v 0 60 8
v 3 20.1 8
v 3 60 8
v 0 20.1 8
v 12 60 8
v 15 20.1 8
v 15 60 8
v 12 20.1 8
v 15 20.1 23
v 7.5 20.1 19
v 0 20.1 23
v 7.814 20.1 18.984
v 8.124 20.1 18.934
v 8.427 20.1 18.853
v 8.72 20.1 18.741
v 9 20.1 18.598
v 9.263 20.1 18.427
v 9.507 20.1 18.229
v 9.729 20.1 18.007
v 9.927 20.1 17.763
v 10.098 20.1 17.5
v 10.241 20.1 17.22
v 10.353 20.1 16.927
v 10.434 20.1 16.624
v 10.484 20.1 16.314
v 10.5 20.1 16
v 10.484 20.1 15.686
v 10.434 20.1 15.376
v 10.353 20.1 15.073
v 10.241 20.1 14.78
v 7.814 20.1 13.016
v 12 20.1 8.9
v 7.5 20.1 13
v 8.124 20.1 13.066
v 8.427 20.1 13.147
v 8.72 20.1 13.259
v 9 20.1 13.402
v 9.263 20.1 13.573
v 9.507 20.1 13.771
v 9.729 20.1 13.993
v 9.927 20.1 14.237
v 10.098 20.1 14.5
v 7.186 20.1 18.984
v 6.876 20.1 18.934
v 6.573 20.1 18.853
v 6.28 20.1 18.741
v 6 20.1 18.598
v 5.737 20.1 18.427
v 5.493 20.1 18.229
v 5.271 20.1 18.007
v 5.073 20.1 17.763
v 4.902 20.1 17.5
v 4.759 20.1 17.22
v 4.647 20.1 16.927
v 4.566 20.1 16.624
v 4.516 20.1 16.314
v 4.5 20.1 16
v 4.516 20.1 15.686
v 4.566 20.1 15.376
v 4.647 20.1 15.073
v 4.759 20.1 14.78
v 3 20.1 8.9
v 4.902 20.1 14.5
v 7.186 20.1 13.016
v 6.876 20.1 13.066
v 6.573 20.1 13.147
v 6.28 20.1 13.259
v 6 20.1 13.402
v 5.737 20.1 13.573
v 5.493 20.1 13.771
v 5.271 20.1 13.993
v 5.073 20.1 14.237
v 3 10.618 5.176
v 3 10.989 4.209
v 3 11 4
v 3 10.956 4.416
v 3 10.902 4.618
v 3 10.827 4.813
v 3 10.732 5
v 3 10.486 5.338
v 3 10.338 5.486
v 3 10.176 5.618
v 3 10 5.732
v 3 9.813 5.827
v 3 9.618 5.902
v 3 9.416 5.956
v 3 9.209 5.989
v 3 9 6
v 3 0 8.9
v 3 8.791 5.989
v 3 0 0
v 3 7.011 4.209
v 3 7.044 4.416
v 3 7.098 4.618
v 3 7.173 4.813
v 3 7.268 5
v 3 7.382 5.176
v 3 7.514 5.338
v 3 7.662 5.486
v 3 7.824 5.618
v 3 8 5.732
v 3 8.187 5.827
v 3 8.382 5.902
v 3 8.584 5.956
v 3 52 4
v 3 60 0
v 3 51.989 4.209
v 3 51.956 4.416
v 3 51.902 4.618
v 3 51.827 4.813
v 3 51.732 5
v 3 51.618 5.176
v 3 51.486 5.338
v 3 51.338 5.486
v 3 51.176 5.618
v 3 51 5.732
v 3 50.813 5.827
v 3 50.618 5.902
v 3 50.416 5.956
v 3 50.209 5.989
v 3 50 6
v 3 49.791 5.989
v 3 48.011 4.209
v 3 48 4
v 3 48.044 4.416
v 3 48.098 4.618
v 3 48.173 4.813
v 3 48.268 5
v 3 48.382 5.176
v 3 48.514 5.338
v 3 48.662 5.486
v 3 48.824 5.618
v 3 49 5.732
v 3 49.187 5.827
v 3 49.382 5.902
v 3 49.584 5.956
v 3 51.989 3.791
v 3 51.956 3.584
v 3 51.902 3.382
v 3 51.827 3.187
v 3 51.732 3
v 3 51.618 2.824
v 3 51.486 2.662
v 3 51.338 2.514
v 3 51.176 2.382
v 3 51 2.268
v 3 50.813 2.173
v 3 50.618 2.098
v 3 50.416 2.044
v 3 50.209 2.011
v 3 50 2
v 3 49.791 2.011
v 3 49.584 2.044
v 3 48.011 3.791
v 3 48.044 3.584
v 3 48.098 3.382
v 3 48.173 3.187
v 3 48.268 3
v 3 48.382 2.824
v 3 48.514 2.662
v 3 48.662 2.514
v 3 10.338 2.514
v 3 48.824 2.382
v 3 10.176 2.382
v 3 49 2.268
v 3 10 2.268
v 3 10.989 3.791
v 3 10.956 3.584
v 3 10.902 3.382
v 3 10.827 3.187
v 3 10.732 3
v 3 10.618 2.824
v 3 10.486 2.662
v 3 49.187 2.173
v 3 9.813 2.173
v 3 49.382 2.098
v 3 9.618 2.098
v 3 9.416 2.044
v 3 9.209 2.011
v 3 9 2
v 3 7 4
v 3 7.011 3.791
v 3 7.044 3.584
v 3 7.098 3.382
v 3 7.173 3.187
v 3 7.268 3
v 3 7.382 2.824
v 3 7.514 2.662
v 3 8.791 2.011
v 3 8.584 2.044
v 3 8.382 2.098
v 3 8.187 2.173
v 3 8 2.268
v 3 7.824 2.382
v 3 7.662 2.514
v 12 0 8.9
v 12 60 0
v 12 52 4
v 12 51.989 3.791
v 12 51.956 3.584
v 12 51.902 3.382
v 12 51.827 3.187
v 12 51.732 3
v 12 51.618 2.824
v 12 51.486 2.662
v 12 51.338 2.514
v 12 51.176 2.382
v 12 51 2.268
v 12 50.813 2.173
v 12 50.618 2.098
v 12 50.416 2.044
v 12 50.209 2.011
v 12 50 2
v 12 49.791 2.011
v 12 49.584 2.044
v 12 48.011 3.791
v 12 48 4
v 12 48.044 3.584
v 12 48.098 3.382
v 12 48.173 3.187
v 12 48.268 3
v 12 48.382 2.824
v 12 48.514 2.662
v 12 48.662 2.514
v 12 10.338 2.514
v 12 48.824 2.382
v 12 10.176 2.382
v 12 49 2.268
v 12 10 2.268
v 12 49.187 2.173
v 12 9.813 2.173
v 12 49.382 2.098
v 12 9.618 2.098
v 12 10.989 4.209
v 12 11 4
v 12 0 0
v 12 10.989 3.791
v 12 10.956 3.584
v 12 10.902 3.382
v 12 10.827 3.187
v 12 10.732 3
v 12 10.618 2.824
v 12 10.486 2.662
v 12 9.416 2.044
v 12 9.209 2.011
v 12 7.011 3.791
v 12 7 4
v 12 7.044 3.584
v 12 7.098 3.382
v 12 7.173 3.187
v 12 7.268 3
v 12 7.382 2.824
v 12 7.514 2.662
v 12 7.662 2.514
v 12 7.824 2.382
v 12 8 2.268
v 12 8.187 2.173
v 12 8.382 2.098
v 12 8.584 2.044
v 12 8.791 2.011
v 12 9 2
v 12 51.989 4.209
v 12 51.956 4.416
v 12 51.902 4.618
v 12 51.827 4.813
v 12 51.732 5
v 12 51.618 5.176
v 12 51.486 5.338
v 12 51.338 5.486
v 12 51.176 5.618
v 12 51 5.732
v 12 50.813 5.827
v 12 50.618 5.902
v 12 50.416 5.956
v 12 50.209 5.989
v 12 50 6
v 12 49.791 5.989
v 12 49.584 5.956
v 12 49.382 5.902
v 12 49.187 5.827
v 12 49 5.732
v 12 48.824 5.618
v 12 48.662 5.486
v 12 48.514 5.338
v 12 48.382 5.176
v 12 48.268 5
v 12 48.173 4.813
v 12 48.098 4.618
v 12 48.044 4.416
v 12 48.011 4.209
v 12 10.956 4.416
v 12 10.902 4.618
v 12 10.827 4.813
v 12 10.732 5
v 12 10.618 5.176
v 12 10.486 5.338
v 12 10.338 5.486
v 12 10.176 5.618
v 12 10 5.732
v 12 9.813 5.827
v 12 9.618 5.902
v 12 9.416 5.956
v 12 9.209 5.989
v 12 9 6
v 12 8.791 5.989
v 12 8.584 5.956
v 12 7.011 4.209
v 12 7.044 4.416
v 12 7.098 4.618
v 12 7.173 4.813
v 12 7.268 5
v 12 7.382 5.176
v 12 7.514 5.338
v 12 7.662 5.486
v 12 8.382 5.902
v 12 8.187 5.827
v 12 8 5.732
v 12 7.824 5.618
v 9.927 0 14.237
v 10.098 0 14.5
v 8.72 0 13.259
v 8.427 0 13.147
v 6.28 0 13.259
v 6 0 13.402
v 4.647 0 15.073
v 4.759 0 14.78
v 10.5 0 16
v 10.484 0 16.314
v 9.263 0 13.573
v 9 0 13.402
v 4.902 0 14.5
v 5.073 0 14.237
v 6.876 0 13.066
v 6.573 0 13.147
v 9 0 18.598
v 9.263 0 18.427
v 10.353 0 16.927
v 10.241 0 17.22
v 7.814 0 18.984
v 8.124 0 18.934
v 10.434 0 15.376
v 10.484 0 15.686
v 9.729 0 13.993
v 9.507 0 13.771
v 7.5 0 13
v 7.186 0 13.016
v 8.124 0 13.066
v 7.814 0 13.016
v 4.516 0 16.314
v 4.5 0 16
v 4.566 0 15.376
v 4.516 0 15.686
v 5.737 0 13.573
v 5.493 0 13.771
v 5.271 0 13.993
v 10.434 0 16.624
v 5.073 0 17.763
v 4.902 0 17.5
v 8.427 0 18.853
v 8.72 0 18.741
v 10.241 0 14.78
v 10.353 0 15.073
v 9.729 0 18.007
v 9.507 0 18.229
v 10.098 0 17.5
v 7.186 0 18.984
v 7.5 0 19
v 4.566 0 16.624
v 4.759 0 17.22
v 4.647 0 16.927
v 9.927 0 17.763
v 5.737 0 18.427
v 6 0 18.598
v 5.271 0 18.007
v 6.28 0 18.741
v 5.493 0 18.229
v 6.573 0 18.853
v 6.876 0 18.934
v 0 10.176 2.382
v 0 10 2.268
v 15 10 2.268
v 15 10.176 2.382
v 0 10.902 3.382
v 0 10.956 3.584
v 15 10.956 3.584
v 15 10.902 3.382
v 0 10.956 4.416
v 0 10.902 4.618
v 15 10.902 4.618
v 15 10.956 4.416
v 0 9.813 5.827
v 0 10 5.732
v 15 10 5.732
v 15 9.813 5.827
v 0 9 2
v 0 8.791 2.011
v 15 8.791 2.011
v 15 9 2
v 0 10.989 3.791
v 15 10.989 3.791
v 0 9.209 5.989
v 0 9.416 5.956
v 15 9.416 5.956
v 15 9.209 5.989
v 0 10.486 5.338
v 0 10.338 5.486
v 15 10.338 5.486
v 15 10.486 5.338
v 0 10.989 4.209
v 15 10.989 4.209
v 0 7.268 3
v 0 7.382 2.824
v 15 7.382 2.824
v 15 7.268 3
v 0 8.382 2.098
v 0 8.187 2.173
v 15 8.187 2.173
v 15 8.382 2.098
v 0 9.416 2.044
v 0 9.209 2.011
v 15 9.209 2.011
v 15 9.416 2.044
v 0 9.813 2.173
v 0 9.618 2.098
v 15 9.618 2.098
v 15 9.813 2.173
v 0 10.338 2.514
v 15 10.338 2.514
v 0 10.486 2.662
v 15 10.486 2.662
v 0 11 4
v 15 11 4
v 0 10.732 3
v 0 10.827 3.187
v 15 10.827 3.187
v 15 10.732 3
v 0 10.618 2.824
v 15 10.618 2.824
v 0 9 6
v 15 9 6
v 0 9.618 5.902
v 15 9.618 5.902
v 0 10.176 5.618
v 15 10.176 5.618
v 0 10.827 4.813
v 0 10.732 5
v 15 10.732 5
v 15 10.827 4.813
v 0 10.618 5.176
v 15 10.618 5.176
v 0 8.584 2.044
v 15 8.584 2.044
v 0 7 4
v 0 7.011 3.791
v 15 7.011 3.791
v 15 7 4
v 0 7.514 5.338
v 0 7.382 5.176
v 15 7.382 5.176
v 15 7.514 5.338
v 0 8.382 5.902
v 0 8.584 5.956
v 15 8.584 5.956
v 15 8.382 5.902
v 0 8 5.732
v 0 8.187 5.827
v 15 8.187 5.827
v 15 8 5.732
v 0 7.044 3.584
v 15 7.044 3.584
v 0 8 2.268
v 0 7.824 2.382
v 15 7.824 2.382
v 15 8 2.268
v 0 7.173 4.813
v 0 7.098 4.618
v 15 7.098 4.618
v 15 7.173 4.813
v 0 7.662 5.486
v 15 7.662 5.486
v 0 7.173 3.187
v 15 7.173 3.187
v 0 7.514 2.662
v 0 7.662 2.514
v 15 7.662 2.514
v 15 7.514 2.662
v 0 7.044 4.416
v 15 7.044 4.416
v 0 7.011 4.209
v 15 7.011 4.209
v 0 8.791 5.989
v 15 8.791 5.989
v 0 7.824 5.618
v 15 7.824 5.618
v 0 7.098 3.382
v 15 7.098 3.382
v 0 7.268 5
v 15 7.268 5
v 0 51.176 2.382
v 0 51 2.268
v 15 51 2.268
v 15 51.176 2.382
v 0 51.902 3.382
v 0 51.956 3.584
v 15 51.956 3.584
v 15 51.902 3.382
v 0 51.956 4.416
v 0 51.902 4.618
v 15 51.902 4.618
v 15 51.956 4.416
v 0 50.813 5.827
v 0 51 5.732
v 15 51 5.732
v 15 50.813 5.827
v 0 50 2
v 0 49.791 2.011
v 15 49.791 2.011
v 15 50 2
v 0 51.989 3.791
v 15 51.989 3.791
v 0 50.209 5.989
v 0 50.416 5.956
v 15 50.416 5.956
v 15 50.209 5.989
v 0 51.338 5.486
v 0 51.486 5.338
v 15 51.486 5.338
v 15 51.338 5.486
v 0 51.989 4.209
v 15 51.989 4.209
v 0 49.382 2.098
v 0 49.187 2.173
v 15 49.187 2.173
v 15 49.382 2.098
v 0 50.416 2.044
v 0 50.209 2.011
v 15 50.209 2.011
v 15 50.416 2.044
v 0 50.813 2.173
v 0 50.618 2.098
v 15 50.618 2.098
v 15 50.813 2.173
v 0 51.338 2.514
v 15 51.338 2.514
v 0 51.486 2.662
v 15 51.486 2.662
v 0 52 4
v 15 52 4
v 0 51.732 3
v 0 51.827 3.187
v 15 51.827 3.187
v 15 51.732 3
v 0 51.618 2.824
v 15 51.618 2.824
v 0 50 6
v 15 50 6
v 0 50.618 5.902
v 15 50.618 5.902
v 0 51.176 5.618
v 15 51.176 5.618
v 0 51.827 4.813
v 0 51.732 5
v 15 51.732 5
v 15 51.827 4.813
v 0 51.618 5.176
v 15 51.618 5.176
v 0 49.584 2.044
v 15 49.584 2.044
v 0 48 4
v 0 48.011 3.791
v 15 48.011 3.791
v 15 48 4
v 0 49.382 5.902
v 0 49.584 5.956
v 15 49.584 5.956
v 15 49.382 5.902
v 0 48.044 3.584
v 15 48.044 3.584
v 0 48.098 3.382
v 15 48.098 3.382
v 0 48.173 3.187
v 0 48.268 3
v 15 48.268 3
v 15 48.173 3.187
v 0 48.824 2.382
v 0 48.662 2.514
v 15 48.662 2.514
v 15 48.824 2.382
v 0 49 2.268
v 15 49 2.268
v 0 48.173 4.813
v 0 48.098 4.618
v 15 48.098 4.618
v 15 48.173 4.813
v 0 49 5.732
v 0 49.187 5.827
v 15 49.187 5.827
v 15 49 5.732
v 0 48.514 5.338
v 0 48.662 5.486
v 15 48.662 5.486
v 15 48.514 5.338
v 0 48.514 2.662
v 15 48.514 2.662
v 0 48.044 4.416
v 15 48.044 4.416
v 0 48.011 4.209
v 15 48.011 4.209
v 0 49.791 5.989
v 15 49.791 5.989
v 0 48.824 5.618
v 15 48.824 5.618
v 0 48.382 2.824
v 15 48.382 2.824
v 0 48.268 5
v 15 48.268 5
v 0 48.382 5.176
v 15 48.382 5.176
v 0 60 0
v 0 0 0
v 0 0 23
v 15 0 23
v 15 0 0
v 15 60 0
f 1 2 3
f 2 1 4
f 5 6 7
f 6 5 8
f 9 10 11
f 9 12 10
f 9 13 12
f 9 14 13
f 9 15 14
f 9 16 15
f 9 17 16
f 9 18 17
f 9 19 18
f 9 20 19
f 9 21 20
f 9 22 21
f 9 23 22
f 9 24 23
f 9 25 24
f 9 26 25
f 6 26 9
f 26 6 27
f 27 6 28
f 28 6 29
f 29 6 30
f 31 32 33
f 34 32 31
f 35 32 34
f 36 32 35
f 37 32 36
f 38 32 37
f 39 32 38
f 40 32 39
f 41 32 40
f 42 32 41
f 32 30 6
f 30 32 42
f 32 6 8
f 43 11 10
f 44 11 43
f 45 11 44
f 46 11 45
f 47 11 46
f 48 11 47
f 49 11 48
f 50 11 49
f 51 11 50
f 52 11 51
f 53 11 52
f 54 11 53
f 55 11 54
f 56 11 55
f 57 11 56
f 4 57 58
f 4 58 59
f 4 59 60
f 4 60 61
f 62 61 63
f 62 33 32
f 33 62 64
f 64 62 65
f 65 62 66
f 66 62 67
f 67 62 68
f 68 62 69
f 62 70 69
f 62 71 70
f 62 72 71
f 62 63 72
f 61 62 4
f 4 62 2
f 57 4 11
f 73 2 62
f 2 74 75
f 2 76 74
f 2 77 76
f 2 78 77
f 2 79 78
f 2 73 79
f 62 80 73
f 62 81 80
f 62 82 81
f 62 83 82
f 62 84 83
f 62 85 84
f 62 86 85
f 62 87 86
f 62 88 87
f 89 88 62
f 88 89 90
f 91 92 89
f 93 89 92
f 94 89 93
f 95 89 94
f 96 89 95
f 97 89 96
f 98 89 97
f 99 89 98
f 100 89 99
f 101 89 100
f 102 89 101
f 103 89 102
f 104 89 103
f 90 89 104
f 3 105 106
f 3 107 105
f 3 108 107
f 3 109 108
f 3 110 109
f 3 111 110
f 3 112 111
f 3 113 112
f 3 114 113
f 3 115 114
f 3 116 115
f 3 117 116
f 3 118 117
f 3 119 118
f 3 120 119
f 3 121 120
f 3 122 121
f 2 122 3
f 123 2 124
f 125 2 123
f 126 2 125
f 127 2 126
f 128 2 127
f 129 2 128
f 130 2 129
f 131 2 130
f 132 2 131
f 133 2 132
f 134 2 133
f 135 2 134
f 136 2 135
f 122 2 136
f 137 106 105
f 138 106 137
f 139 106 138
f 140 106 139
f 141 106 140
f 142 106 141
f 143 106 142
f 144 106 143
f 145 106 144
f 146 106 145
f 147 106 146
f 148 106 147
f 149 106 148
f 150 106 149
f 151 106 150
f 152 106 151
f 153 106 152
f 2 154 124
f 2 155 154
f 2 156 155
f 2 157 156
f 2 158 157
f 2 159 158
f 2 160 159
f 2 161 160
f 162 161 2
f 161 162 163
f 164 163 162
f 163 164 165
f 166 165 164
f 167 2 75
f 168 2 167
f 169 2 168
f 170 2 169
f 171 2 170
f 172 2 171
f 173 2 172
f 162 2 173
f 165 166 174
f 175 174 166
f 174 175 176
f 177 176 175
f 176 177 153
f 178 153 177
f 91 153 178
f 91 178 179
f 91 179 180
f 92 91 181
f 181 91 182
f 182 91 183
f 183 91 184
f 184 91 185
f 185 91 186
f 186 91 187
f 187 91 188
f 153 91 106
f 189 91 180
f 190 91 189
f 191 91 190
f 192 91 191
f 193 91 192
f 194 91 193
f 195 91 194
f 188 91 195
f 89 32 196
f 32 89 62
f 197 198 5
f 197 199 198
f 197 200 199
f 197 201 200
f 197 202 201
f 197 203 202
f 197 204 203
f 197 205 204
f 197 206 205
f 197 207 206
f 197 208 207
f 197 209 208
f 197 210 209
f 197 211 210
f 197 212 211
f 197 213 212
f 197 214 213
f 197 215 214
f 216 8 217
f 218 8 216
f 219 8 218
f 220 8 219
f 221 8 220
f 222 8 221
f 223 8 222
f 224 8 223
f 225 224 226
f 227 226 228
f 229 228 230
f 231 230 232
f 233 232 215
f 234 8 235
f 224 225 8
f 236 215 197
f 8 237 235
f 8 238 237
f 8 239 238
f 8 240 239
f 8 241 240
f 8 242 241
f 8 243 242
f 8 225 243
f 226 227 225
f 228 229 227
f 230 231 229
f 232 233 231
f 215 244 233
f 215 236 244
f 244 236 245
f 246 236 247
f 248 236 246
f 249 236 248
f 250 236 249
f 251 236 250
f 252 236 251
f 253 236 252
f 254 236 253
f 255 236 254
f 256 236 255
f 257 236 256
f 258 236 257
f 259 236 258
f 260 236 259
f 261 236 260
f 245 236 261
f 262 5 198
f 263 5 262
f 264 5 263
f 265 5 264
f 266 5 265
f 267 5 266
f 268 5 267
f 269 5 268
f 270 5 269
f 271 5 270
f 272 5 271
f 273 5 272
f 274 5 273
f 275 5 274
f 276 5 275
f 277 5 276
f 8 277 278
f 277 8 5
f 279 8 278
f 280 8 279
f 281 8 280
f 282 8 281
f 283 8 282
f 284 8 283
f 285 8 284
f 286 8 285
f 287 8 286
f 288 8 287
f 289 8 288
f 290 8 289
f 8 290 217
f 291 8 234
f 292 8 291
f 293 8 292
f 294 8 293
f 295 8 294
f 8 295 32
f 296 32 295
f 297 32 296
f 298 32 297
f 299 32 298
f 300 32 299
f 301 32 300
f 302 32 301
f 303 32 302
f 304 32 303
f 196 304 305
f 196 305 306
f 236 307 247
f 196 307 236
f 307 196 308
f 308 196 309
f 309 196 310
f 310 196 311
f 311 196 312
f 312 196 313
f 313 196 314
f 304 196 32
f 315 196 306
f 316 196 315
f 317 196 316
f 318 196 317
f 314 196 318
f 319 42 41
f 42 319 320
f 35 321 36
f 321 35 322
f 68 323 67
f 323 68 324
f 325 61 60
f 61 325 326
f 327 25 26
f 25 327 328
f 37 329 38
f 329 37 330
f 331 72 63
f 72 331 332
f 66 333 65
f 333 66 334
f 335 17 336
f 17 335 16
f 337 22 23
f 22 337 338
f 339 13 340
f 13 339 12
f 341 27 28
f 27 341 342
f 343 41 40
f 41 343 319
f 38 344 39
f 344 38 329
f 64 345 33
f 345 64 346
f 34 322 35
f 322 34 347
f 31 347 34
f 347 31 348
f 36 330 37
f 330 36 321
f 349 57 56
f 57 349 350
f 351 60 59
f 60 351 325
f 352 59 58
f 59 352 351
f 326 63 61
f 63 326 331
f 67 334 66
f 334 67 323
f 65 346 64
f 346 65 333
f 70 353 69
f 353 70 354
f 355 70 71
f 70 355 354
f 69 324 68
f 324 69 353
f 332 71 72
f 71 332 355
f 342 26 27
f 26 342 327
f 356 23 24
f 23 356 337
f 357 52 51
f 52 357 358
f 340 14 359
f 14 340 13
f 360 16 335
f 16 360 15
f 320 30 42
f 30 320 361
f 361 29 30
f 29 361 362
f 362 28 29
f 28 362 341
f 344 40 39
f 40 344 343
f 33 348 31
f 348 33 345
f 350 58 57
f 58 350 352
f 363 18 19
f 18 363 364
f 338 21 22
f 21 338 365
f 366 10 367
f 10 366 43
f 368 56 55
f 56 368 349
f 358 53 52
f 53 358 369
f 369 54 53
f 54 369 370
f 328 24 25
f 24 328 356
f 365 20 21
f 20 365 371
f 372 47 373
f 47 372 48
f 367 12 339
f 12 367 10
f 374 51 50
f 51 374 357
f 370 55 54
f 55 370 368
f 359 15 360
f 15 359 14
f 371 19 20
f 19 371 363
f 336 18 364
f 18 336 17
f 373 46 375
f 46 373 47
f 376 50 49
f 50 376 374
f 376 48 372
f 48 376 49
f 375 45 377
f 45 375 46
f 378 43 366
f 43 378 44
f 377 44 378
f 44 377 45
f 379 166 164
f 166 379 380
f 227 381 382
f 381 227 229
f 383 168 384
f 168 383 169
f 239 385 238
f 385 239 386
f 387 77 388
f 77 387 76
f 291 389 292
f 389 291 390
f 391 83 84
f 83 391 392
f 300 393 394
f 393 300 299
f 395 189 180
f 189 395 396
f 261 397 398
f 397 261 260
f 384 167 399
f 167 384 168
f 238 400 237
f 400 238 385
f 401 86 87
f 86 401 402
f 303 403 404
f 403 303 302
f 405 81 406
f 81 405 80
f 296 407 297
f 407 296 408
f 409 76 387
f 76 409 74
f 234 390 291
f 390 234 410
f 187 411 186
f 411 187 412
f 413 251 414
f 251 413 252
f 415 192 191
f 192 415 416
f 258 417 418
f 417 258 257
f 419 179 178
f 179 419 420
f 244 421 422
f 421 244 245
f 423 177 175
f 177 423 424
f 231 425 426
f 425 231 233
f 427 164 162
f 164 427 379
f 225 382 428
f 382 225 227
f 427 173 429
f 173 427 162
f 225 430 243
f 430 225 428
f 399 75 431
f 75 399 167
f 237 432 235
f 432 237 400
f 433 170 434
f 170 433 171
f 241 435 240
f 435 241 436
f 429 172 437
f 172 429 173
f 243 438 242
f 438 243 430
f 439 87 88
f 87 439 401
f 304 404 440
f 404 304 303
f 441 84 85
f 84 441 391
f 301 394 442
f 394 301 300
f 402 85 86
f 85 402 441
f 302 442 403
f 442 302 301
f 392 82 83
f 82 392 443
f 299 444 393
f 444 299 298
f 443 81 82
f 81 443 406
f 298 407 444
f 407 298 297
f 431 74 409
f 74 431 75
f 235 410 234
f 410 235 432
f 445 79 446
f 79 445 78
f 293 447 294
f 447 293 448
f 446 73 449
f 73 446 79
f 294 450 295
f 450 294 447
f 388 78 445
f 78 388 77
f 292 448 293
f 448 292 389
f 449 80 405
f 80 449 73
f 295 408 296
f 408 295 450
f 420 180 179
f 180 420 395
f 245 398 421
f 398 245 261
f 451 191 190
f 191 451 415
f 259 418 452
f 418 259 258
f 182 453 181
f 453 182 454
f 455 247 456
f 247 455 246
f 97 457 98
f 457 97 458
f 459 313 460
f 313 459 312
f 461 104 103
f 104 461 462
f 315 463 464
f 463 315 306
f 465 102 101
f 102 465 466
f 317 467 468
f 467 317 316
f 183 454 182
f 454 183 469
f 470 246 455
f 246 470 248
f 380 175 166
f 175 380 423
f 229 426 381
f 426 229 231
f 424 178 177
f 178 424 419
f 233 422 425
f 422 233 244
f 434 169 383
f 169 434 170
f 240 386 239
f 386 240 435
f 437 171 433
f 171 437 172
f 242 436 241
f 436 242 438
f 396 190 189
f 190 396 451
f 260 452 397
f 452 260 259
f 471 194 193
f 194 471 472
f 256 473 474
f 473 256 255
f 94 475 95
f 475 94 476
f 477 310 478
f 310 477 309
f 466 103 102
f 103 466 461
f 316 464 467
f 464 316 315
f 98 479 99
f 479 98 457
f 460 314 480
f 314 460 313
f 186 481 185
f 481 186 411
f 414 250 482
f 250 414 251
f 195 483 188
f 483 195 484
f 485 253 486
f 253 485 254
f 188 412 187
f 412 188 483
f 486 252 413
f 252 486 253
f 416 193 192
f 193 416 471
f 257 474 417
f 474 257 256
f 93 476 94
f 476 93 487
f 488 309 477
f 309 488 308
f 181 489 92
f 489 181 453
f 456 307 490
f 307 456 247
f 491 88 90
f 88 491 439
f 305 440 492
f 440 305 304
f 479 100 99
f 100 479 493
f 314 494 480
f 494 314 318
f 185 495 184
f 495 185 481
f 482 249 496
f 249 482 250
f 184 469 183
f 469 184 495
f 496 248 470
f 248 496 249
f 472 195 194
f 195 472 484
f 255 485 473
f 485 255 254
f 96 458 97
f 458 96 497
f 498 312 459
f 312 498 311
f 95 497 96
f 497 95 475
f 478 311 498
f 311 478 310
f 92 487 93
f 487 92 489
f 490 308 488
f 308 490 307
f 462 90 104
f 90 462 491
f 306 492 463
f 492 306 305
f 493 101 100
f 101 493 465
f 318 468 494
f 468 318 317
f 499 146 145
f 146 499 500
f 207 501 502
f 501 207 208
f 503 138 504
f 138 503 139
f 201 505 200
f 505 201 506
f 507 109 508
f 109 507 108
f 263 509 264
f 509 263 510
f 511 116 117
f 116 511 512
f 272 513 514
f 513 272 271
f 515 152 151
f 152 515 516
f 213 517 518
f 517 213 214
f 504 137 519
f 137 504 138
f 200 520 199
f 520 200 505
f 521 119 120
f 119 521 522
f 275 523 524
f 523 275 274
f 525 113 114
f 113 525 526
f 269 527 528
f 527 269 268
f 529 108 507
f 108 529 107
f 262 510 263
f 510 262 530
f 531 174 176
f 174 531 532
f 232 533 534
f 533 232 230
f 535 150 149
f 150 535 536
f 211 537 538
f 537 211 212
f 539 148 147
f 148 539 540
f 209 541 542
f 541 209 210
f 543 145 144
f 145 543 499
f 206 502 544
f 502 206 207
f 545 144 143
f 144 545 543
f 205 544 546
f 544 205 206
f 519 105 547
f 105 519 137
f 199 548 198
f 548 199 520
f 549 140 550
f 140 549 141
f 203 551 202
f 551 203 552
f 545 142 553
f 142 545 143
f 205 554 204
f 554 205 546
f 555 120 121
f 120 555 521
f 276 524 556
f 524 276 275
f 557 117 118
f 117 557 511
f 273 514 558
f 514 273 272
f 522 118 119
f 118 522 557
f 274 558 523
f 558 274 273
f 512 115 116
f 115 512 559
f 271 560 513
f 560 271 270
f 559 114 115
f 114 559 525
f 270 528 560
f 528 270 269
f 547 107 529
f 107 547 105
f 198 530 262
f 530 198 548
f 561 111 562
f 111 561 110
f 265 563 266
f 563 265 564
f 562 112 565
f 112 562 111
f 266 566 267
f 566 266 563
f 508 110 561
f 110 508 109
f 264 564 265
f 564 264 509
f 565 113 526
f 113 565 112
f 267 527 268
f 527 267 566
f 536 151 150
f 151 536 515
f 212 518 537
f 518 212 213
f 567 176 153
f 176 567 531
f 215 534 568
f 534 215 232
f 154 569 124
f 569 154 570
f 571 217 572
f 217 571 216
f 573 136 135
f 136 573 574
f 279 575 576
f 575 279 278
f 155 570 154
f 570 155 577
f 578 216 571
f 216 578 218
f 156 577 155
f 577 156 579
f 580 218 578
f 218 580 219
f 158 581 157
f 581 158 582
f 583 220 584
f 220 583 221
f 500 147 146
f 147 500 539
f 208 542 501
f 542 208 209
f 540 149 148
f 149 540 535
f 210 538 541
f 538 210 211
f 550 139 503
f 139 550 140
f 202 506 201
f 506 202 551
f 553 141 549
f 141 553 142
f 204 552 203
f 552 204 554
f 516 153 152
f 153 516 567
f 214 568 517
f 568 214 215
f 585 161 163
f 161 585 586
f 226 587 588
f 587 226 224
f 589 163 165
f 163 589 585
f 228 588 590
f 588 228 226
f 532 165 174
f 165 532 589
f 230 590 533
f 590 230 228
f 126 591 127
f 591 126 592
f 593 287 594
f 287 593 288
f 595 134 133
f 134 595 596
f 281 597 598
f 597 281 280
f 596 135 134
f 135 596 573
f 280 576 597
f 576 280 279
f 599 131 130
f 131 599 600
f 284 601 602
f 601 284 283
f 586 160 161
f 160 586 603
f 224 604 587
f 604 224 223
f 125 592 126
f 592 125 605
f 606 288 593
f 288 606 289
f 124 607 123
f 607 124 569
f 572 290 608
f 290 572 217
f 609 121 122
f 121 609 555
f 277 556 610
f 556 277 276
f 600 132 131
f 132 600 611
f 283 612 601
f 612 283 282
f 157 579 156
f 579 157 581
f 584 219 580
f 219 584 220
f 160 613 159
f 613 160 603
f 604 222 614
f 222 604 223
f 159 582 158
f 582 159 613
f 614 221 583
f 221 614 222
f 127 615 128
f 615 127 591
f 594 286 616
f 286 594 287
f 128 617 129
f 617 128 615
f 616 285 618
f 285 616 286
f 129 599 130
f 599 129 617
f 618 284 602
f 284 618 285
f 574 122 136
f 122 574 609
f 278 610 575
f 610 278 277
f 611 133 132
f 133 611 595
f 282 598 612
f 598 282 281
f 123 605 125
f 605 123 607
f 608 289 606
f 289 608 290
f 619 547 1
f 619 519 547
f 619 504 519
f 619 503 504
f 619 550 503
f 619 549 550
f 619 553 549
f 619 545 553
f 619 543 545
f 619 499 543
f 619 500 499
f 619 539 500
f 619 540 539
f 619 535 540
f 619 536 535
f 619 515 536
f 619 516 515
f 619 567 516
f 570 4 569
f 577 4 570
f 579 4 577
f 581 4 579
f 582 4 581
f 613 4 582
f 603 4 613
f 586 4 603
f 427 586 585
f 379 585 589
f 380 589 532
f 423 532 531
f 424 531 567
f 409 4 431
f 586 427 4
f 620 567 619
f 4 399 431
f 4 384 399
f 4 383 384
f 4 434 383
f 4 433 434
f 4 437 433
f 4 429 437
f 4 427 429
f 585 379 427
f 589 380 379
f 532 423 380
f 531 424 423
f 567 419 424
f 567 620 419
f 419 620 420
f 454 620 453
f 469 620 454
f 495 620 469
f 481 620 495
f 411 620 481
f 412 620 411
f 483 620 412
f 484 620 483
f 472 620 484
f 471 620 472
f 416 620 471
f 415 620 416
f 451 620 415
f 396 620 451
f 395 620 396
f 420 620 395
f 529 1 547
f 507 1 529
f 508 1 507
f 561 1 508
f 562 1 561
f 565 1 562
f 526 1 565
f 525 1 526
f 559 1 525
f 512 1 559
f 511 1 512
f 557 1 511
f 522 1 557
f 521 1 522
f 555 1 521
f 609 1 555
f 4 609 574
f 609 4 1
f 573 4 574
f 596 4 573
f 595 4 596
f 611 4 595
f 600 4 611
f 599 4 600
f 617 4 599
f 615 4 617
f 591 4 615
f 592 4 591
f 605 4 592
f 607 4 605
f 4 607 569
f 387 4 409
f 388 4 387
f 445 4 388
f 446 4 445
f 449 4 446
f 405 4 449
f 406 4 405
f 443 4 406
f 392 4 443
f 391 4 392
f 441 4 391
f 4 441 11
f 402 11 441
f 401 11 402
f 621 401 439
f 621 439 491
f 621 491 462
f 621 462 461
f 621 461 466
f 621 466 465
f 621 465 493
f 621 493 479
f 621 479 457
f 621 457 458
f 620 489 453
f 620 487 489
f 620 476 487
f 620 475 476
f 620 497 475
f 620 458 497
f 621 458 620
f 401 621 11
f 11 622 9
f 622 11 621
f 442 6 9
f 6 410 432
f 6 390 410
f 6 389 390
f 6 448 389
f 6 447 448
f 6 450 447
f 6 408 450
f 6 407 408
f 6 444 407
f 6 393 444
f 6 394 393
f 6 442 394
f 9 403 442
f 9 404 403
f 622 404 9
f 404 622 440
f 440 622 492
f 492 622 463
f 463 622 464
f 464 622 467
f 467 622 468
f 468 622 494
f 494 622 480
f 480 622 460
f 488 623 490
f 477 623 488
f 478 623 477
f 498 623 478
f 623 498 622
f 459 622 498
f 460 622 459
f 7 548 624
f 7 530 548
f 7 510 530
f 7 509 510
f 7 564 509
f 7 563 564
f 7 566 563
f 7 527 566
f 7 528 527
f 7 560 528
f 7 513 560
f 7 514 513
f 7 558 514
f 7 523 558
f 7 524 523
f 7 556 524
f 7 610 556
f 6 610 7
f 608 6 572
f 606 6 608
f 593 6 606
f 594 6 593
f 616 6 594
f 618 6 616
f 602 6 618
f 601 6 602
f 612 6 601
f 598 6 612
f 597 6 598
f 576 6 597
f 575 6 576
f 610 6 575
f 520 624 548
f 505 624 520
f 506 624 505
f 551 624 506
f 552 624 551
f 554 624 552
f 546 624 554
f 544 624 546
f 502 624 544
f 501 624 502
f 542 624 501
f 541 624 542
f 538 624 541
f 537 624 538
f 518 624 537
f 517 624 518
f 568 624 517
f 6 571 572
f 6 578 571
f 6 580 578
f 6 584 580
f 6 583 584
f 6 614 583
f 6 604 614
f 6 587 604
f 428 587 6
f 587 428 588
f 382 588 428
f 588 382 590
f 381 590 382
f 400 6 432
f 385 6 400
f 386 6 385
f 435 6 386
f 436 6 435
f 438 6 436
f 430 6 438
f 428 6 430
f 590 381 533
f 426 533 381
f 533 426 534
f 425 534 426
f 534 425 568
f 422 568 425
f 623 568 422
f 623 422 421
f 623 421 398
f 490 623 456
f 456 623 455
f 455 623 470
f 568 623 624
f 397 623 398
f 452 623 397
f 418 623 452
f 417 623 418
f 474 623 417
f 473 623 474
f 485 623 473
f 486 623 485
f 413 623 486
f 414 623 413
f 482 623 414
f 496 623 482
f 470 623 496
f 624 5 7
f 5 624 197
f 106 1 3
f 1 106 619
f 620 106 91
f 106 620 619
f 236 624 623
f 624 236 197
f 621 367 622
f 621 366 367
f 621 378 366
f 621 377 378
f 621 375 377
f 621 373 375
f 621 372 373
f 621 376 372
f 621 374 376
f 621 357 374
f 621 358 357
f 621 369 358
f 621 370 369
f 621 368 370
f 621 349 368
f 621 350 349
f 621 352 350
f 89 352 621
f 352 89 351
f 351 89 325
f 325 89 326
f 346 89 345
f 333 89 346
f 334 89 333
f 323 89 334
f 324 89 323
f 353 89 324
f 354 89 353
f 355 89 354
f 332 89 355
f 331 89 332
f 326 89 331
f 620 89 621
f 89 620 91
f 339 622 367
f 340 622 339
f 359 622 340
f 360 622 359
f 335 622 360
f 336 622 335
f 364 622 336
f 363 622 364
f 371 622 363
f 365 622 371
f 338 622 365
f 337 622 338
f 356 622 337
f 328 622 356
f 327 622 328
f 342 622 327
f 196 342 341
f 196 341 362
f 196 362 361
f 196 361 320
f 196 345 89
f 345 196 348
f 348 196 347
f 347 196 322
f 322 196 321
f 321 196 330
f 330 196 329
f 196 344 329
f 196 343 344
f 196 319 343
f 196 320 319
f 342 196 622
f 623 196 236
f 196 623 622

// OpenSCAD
difference()
{
    cube([15, 60, 23]);
    union()
    {
        translate([-1,20.1, 8])cube([17,40,30]);
        translate([3,-0.1,-0.1]) cube([9, 70, 9]);
        translate([7.5, -0.1, 16])rotate([-90,0,0])cylinder(r=3, h=25, $fn=60);
        translate([-0.1, 9, 4])rotate([0,90,0])cylinder(r=2, h=25, $fn=60);
        translate([-0.1, 50, 4])rotate([0,90,0])cylinder(r=2, h=25, $fn=60);        
    }
}
